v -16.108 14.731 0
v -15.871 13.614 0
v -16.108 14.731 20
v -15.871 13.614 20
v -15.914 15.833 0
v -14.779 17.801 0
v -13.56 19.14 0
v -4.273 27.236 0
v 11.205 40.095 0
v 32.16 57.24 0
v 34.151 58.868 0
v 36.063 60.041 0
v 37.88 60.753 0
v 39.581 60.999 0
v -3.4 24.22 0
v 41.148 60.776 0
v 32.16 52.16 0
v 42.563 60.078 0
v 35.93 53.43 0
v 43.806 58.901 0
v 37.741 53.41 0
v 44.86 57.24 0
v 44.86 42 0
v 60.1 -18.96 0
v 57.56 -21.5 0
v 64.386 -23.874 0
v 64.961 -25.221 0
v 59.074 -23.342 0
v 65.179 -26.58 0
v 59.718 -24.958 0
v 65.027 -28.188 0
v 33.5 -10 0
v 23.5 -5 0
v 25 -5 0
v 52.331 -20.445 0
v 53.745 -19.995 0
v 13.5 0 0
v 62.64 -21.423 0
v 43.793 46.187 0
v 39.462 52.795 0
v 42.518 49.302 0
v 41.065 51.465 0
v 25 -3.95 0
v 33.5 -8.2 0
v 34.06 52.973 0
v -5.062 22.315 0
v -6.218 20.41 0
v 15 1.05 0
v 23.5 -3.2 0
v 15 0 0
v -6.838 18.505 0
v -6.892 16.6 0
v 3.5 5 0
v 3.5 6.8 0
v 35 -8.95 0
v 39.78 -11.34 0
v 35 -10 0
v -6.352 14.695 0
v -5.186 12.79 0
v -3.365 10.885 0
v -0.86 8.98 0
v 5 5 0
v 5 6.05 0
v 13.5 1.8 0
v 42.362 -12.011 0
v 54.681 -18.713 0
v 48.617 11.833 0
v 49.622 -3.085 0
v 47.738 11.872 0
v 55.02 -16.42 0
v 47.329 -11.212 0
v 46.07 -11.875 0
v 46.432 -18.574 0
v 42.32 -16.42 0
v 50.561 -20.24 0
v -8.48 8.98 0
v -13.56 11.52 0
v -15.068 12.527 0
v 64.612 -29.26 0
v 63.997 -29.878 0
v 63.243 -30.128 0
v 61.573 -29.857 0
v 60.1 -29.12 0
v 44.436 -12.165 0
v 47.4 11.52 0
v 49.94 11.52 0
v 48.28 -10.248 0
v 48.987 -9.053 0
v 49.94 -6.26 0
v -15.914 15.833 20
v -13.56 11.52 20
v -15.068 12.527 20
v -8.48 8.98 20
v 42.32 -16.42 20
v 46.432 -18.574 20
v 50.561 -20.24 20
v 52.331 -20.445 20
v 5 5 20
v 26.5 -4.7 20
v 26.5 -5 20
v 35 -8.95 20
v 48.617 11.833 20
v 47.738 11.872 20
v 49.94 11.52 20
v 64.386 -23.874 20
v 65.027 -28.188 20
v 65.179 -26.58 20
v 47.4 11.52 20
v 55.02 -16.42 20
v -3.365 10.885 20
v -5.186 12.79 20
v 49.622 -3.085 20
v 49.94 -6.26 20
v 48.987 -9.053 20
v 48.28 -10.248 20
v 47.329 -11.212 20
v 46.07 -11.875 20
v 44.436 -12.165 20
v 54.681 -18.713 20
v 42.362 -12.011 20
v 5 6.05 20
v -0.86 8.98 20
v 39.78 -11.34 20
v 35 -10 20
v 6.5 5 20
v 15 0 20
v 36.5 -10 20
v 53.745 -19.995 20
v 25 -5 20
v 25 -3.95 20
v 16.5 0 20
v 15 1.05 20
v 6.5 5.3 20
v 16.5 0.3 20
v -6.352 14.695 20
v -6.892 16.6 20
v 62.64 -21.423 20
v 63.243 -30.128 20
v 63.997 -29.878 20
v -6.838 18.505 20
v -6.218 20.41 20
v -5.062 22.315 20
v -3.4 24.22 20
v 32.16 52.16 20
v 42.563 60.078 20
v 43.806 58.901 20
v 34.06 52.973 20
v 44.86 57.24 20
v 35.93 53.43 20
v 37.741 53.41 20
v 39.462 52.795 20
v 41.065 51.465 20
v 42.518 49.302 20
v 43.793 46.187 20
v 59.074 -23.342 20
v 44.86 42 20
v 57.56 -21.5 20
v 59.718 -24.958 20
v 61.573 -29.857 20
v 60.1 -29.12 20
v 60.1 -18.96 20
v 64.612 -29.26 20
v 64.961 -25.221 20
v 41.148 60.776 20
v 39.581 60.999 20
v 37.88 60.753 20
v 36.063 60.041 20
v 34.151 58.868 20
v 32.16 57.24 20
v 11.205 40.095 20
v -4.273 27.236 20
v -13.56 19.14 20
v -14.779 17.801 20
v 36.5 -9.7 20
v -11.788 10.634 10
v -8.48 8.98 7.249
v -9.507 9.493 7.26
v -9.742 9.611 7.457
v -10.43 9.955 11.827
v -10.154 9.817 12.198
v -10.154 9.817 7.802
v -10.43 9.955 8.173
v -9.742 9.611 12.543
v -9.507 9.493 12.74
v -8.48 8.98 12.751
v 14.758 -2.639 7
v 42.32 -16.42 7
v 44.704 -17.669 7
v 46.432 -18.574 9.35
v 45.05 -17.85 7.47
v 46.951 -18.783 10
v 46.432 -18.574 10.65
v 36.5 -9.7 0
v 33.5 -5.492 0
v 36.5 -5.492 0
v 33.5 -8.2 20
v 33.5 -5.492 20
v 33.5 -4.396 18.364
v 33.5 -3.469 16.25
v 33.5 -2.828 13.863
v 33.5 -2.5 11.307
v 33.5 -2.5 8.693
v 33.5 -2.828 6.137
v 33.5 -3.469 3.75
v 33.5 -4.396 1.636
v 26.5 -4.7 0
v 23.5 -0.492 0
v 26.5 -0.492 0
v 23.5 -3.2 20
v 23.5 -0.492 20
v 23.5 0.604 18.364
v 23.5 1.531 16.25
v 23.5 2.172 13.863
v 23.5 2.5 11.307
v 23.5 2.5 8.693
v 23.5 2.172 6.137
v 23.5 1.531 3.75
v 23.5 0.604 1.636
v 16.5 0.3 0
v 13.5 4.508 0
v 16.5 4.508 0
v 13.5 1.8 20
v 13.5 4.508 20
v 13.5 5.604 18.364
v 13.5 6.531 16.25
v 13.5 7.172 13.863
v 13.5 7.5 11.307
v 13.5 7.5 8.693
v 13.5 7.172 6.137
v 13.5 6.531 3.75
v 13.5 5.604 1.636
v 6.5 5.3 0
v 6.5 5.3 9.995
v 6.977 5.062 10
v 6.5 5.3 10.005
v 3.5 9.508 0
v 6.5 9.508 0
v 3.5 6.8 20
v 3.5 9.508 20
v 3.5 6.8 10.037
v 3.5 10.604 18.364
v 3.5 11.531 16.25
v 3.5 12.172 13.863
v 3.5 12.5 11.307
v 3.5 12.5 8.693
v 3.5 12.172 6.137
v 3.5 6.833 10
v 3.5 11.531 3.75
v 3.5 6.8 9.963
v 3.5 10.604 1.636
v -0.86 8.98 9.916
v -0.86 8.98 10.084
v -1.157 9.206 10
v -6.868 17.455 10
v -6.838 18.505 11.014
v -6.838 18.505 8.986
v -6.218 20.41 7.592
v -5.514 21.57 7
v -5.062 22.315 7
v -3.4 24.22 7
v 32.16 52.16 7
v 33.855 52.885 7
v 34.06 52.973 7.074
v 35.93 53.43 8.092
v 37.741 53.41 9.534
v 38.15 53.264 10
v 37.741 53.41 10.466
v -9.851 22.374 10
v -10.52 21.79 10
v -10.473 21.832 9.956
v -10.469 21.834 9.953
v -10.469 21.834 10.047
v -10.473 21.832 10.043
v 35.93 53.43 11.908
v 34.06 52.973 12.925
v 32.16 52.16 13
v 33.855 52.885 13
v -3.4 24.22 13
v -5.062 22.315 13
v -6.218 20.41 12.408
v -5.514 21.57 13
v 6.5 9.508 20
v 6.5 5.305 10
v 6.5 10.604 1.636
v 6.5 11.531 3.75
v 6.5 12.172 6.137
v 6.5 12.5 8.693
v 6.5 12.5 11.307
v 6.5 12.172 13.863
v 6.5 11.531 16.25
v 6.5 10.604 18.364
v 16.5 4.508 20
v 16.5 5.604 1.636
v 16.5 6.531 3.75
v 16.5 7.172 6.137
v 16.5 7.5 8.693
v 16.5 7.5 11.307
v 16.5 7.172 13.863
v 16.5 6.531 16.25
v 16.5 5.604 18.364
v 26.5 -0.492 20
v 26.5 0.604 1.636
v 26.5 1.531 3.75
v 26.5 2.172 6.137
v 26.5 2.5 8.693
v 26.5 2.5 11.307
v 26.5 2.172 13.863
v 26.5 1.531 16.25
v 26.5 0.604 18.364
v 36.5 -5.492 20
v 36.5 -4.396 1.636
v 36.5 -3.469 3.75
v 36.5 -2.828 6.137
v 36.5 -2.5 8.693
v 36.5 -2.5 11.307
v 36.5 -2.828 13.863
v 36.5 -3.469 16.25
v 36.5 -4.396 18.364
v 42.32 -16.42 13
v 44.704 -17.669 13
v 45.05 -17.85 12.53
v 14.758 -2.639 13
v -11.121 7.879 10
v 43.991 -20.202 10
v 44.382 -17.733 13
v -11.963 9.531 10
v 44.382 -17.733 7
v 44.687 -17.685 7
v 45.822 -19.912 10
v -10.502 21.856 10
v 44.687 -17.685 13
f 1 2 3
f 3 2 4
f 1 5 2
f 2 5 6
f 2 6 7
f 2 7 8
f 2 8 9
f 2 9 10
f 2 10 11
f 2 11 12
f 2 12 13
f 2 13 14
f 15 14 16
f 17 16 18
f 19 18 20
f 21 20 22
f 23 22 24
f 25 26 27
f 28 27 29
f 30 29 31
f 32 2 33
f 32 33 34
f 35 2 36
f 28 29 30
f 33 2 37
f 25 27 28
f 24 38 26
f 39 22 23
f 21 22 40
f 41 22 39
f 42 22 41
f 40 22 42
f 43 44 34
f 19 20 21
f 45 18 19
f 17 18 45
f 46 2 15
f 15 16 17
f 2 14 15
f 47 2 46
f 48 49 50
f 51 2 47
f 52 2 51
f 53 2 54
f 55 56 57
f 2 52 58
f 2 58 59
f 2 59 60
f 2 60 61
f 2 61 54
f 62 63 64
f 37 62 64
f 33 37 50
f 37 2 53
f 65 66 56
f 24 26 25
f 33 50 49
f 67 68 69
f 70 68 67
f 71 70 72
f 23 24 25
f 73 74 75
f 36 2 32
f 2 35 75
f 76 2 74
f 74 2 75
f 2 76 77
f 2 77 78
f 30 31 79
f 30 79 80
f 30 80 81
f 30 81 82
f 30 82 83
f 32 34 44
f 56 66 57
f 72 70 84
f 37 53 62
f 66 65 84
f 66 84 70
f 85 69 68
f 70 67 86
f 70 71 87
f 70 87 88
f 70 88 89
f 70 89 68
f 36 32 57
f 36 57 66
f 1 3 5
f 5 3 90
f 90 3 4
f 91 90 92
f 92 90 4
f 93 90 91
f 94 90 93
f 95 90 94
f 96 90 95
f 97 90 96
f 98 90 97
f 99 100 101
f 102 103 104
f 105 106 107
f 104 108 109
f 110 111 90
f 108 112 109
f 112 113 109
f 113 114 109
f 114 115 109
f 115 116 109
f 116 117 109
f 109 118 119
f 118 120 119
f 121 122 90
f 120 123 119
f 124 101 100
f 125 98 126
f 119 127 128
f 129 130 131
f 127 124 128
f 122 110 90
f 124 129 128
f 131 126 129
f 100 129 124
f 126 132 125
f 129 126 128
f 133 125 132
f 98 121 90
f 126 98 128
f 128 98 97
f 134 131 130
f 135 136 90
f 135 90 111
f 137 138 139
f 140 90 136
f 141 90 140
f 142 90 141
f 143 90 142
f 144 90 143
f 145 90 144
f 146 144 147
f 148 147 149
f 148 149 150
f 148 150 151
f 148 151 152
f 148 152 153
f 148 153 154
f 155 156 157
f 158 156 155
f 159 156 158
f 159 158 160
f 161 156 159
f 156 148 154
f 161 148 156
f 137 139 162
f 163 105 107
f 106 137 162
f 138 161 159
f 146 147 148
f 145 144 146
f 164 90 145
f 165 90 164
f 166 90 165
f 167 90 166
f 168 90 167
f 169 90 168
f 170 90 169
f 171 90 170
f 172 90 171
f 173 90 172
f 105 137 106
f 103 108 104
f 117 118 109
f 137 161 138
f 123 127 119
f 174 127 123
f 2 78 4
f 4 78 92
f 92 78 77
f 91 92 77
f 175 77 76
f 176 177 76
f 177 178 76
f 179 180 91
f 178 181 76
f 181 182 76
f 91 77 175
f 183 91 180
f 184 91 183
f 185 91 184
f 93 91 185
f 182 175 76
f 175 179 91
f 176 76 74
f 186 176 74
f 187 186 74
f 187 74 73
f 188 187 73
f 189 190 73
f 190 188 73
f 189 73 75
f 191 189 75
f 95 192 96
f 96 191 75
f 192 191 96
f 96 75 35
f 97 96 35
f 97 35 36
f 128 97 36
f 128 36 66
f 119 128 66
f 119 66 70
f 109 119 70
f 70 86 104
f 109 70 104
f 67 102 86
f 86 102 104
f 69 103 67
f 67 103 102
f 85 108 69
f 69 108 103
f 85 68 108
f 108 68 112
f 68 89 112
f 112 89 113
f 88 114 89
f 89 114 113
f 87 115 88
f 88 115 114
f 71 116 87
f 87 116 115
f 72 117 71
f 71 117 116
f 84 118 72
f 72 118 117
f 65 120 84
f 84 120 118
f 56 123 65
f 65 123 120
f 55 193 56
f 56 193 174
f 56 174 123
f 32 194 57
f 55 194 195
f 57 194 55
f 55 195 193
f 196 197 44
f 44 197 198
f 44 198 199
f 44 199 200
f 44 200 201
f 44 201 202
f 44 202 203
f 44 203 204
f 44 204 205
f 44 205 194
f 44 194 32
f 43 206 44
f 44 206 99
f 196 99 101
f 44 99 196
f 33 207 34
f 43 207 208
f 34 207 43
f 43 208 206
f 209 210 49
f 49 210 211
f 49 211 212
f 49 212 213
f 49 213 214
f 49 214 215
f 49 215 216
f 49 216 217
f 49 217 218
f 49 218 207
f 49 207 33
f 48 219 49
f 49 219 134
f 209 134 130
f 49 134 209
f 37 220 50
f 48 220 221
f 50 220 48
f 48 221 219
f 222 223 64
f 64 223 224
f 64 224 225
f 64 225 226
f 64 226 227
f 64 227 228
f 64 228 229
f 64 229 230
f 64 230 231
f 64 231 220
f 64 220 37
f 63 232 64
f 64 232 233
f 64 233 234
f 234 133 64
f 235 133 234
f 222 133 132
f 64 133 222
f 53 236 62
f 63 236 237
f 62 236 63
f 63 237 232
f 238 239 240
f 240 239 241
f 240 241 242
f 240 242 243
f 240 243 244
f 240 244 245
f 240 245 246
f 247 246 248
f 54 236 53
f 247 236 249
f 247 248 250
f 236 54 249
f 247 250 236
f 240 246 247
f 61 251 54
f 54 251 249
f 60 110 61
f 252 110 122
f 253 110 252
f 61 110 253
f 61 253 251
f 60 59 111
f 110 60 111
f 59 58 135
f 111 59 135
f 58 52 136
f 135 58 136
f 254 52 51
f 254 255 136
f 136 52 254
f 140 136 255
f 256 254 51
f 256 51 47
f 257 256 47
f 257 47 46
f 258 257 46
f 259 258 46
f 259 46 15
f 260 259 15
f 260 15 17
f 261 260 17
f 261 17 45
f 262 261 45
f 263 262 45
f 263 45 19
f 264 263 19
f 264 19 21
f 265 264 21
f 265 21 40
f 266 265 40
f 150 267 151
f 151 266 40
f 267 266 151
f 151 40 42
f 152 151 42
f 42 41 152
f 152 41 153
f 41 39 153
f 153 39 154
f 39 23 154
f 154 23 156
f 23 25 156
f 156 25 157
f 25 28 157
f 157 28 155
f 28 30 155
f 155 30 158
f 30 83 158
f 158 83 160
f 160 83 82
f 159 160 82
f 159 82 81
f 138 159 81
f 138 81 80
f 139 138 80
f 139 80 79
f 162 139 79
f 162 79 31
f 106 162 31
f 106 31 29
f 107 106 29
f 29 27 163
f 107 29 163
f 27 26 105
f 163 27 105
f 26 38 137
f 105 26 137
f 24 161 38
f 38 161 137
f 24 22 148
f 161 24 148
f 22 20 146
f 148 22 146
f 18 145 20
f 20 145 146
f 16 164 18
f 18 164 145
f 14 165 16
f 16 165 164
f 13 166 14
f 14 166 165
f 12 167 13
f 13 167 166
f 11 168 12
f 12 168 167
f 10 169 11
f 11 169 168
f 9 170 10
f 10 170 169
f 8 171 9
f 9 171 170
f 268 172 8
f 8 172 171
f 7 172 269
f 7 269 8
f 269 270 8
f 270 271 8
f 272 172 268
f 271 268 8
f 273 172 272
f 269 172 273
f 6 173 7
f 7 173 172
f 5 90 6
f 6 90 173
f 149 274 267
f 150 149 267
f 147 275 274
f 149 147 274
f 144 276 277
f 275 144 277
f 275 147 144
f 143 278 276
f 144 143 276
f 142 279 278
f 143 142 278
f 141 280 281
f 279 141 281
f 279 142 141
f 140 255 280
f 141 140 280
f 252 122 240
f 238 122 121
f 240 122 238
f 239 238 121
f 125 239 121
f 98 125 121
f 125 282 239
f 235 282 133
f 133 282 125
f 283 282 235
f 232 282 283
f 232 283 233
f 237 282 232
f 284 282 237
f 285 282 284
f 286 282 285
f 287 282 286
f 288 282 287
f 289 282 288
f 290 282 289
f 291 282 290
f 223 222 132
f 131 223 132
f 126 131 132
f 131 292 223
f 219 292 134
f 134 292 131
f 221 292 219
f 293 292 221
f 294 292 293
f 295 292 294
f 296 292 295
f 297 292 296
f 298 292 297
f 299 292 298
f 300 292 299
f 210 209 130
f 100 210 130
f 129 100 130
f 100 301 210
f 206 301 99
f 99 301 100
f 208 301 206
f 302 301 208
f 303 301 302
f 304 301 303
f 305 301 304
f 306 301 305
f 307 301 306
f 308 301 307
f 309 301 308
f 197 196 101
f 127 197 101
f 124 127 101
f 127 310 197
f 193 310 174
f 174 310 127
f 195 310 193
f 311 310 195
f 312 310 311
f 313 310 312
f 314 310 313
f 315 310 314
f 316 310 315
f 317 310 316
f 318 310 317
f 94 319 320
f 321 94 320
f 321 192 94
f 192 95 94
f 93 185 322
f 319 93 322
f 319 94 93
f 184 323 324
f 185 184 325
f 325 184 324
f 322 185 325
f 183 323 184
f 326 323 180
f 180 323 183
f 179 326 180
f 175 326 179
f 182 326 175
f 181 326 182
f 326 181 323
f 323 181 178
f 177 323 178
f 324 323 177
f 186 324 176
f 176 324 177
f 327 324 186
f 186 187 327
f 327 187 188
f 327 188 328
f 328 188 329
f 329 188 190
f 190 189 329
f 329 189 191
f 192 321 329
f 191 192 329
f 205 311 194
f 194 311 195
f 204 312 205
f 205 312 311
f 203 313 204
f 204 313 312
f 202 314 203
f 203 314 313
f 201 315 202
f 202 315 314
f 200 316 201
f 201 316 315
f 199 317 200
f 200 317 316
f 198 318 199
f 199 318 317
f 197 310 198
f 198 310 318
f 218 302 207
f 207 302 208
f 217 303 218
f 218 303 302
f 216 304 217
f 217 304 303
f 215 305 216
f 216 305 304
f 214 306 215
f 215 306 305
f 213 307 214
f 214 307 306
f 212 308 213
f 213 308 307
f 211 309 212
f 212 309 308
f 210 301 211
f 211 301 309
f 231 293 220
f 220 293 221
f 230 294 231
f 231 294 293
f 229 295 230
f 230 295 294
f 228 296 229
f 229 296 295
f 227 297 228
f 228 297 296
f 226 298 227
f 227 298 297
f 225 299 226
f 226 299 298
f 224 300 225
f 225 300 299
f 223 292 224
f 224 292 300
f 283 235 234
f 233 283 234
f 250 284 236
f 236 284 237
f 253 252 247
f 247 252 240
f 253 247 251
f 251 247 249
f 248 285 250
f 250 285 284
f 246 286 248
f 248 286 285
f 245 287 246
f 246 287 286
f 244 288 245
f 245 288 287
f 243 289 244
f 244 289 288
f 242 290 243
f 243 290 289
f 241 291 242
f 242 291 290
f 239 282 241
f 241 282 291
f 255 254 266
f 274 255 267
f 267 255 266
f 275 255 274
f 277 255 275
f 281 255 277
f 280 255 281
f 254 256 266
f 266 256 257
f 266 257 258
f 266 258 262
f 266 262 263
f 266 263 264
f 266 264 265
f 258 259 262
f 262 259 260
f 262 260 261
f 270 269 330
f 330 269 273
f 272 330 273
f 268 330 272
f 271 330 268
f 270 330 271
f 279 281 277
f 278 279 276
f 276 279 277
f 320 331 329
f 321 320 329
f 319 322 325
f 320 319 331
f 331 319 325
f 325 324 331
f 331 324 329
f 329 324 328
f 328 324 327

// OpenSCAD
linear_extrude(height=20) hangerBody();
translate([-9,10,0]) rotate([0,0,-27]) reinforcement();
translate([-8,20.2,0]) rotate([0,0,38.5]) reinforcement();

translate([5,5,0]) notch();
translate([15,-0,0]) notch();
translate([25,-5,0]) notch();
translate([35,-10,0]) notch();

module notch() {
  render() translate([0,0,10]) rotate([0,90,0])
  difference() {
    resize([25,15,3]) cylinder(r=15, h=3, center=true);
    translate([0,-5,0]) cube(size=[20,10,3],center=true);
    translate([-15,0,0]) cube(size=[10,15,3], center=true);
    translate([15,0,0]) cube(size=[10,15,3], center=true);
  }
}

module reinforcement() {
  translate([0,0,11.5]) 
    hull() {
      cylinder(r1=3, r=0.5, h=3, center=true);
      translate([60,0,0]) cylinder(r1=3, r2=0.5, h=3, center=true);
    };
  translate([0,0,8.5])	
    hull() {
      cylinder(r1=0.5, r2=3, h=3, center=true);
      translate([60,0,0]) cylinder(r1=0.5, r2=3, h=3, center=true);
    }
  
}

module hangerBody() {
  polygon(points=
    [[42.320, -16.420], [-8.480, 8.980], [-13.560, 11.520], [-15.068, 12.527], [-15.871, 13.614], [-16.108, 14.731], [-15.914, 15.833], [-14.779, 17.801], [-13.560, 19.140], [-4.273, 27.236], [11.205, 40.095], [32.160, 57.240], [34.151, 58.868], [36.063, 60.041], [37.880, 60.753], [39.581, 60.999], [41.148, 60.776], [42.563, 60.078], [43.806, 58.901], [44.860, 57.240], [60.100, -18.960], [62.640, -21.423], [64.386, -23.874], [64.961, -25.221], [65.179, -26.580], [65.027, -28.188], [64.612, -29.260], [63.997, -29.878], [63.243, -30.128], [61.573, -29.857], [60.100, -29.120], [59.718, -24.958], [59.074, -23.342], [57.560, -21.500], [44.860, 42.000], [43.793, 46.187], [42.518, 49.302], [41.065, 51.465], [39.462, 52.795], [37.741, 53.410], [35.930, 53.430], [34.060, 52.973], [32.160, 52.160], [-3.400, 24.220], [-5.062, 22.315], [-6.218, 20.410], [-6.838, 18.505], [-6.892, 16.600], [-6.352, 14.695], [-5.186, 12.790], [-3.365, 10.885], [-0.860, 8.980], [39.780, -11.340], [42.362, -12.011], [44.436, -12.165], [46.070, -11.875], [47.329, -11.212], [48.280, -10.248], [48.987, -9.053], [49.940, -6.260], [49.622, -3.085], [47.400, 11.520], [47.738, 11.872], [48.617, 11.833], [49.940, 11.520], [55.020, -16.420], [54.681, -18.713], [53.745, -19.995], [52.331, -20.445], [50.561, -20.240], [46.432, -18.574]]
    , paths=
    [[0, 1, 2, 3, 4, 5, 6, 7, 8, 9, 10, 11, 12, 13, 14, 15, 16, 17, 18, 19, 20, 21, 22, 23, 24, 25, 26, 27, 28, 29, 30, 31, 32, 33, 34, 35, 36, 37, 38, 39, 40, 41, 42, 43, 44, 45, 46, 47, 48, 49, 50, 51, 52, 53, 54, 55, 56, 57, 58, 59, 60, 61, 62, 63, 64, 65, 66, 67, 68, 69, 70, 0, 0]]
    );}
